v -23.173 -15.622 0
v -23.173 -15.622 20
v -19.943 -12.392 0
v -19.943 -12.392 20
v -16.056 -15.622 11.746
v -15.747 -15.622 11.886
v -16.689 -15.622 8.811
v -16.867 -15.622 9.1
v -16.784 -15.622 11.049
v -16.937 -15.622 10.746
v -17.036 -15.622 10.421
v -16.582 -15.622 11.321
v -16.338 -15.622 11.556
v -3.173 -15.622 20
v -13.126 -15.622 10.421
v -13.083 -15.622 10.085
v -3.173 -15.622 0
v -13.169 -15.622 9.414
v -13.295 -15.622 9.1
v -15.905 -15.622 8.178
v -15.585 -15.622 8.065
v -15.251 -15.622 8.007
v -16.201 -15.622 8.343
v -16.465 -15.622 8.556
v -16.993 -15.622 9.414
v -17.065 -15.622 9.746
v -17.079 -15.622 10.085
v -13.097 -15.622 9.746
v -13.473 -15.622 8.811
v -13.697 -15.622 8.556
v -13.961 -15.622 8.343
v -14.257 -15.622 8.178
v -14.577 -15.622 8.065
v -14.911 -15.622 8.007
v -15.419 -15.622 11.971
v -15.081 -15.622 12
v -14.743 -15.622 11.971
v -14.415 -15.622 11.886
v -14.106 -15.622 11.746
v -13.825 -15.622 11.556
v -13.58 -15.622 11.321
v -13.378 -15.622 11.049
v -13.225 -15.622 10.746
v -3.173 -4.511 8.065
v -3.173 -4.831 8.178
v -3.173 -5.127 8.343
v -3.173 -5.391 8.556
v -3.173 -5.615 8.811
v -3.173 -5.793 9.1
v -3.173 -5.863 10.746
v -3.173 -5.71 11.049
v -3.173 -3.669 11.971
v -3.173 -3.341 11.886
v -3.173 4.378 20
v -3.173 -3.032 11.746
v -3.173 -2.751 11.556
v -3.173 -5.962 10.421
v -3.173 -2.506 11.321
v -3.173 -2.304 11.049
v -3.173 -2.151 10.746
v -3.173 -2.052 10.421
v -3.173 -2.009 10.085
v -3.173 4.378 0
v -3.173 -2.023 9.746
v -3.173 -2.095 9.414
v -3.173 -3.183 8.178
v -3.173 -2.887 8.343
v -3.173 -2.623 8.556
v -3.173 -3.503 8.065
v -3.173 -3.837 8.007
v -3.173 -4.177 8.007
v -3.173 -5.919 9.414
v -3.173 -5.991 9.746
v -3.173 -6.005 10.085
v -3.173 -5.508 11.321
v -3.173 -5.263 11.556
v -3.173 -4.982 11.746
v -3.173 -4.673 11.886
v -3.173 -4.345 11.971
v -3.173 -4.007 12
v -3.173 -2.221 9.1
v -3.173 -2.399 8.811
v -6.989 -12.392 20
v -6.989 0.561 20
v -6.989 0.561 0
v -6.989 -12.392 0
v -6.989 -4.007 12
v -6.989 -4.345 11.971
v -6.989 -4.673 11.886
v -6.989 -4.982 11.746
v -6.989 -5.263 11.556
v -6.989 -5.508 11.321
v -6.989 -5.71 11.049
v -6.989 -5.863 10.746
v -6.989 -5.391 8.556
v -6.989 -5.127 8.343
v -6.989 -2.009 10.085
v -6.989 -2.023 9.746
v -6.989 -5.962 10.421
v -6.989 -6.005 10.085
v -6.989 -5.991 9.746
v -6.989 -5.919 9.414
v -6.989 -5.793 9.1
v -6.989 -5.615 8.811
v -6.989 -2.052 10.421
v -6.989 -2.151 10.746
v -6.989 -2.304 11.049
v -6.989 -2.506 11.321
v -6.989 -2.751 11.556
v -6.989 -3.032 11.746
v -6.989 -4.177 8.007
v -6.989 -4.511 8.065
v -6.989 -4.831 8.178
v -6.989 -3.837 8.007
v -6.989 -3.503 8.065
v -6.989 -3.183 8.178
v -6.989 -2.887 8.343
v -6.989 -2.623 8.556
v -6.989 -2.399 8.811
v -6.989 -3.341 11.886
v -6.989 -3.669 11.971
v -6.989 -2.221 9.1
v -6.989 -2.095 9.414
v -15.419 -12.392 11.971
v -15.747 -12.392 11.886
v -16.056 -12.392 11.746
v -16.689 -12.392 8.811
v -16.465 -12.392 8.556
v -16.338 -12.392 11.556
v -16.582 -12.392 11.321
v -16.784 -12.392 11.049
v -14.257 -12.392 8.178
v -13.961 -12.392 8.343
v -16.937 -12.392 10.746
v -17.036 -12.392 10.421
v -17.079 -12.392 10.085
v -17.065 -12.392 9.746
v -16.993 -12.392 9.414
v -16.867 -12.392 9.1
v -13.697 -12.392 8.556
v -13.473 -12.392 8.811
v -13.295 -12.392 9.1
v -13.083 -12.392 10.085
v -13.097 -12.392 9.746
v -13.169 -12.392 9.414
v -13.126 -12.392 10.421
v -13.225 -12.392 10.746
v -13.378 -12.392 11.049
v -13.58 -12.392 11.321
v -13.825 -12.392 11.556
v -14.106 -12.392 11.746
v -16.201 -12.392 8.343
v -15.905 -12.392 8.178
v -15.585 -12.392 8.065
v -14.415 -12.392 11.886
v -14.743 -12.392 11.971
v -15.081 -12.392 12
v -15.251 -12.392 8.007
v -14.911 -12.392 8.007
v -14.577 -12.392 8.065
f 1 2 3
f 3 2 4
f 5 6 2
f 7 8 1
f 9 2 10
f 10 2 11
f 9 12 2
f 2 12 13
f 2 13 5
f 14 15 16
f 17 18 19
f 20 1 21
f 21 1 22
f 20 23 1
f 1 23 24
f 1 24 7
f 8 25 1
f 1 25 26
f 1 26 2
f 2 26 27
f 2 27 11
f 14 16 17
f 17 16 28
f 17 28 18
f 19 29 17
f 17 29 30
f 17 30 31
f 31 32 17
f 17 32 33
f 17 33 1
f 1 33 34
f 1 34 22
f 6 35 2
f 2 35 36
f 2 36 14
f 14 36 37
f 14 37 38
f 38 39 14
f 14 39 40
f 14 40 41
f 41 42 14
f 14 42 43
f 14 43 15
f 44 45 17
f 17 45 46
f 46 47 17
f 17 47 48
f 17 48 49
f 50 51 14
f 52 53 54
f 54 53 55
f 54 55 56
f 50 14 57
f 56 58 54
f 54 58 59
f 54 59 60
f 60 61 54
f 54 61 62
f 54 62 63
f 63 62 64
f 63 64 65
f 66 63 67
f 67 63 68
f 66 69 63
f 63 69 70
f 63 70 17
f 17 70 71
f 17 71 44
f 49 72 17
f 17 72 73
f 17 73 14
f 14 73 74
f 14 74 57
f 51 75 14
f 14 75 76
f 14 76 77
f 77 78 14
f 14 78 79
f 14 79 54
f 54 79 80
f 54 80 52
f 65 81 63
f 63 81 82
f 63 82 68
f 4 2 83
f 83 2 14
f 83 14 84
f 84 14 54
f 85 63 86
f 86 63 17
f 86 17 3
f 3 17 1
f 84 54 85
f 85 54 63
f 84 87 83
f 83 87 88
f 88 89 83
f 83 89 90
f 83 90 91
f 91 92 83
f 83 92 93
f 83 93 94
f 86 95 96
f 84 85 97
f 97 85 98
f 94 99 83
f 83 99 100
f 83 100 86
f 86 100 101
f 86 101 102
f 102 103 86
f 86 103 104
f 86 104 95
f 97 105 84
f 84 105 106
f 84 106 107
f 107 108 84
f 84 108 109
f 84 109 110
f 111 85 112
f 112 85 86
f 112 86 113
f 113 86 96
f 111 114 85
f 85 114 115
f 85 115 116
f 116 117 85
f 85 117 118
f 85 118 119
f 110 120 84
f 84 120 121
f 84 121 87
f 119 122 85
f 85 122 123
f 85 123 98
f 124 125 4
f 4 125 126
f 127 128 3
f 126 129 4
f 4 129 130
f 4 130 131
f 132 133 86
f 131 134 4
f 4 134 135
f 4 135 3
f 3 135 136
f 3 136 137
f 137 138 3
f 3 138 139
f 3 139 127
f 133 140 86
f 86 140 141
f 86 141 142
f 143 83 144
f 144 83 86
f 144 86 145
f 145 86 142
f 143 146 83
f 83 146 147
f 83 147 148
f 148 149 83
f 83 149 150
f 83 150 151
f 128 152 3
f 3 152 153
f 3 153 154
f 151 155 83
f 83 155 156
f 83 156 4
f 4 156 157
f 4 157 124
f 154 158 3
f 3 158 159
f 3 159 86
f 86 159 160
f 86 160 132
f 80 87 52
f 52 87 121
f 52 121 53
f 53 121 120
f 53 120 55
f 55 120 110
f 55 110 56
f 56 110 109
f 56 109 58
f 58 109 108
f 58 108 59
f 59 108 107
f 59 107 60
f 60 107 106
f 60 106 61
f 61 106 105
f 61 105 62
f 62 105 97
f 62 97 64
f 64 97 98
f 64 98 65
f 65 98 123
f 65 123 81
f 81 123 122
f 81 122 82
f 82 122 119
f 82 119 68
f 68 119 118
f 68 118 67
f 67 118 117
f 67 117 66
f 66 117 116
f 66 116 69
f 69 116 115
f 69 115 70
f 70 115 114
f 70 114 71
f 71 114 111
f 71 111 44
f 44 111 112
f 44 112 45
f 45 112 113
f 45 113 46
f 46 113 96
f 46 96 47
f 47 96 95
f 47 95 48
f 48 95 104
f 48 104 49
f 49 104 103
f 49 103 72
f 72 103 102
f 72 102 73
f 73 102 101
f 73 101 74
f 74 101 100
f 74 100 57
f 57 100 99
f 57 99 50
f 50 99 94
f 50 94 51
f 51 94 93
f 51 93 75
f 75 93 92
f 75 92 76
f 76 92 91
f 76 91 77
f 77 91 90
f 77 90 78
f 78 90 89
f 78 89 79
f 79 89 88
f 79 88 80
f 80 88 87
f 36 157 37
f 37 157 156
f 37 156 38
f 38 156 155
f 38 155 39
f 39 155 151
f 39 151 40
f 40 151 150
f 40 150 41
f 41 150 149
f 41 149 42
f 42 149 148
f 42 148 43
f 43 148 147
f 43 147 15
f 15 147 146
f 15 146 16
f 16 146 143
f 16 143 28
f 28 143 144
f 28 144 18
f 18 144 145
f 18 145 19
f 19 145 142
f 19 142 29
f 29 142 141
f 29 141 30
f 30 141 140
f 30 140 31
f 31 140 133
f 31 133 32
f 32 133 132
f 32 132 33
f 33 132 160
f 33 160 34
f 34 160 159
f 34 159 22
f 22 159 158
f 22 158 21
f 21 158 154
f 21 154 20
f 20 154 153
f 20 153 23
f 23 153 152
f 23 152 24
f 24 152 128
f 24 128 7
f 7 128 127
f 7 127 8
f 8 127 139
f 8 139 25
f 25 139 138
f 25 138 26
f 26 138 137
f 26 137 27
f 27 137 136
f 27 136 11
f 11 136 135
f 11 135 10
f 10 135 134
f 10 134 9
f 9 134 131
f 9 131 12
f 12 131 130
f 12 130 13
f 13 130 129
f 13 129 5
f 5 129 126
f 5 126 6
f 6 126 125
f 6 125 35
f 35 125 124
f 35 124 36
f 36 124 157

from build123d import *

# Parameters (mm, degrees)
IZIM1_W                     = 20
IZIM1_H                     = 20
Y_KSEKLIK_EKSTR_ZYON1_DEPTH = 20
KES_EKSTR_ZYON1_DEPTH       = 20
IZIM3_W                     = 17.224679165
IZIM3_H                     = 17.248412117
KES_EKSTR_ZYON2_DEPTH       = 20
IZIM4_R                     = 2
KES_EKSTR_ZYON3_DEPTH       = 20
IZIM10_R                    = 2
KES_EKSTR_ZYON10_DEPTH      = 10


with BuildPart() as part:
    # Çizim1 → Yükseklik-Ekstrüzyon1 (new body)
    with BuildSketch(Plane.XY):
        with Locations((-13.172756411, -5.622082974)):
            Rectangle(IZIM1_W, IZIM1_H)
    extrude(amount=Y_KSEKLIK_EKSTR_ZYON1_DEPTH)

    # Çizim2 → Kes-Ekstrüzyon1 (cut)
    with BuildSketch(Plane.XY.offset(20)):
        Polygon((-3.172756411, 4.377917026), (-23.172756411, -15.622082974), (-23.172756411, 4.377917026), align=None)
    extrude(amount=-KES_EKSTR_ZYON1_DEPTH, mode=Mode.SUBTRACT)

    # Çizim3 → Kes-Ekstrüzyon2 (cut)
    with BuildSketch(Plane.XY.offset(20)):
        with Locations((-15.601705124, -3.767784851)):
            Rectangle(IZIM3_W, IZIM3_H)
    extrude(amount=-KES_EKSTR_ZYON2_DEPTH, mode=Mode.SUBTRACT)

    # Çizim4 → Kes-Ekstrüzyon3 (cut)
    with BuildSketch(Plane.ZY.offset(6.989365541)):
        with Locations((10, -4.007036941)):
            Circle(IZIM4_R)
    extrude(amount=-KES_EKSTR_ZYON3_DEPTH, mode=Mode.SUBTRACT)

    # Çizim10 → Kes-Ekstrüzyon10 (cut)
    with BuildSketch(Plane(origin=(0, -12.391990909, 0), x_dir=(1, 0, 0), z_dir=(0, 1, 0))):
        with Locations((-15.081060976, -10)):
            Circle(IZIM10_R)
    extrude(amount=-KES_EKSTR_ZYON10_DEPTH, mode=Mode.SUBTRACT)


solid = part.part
